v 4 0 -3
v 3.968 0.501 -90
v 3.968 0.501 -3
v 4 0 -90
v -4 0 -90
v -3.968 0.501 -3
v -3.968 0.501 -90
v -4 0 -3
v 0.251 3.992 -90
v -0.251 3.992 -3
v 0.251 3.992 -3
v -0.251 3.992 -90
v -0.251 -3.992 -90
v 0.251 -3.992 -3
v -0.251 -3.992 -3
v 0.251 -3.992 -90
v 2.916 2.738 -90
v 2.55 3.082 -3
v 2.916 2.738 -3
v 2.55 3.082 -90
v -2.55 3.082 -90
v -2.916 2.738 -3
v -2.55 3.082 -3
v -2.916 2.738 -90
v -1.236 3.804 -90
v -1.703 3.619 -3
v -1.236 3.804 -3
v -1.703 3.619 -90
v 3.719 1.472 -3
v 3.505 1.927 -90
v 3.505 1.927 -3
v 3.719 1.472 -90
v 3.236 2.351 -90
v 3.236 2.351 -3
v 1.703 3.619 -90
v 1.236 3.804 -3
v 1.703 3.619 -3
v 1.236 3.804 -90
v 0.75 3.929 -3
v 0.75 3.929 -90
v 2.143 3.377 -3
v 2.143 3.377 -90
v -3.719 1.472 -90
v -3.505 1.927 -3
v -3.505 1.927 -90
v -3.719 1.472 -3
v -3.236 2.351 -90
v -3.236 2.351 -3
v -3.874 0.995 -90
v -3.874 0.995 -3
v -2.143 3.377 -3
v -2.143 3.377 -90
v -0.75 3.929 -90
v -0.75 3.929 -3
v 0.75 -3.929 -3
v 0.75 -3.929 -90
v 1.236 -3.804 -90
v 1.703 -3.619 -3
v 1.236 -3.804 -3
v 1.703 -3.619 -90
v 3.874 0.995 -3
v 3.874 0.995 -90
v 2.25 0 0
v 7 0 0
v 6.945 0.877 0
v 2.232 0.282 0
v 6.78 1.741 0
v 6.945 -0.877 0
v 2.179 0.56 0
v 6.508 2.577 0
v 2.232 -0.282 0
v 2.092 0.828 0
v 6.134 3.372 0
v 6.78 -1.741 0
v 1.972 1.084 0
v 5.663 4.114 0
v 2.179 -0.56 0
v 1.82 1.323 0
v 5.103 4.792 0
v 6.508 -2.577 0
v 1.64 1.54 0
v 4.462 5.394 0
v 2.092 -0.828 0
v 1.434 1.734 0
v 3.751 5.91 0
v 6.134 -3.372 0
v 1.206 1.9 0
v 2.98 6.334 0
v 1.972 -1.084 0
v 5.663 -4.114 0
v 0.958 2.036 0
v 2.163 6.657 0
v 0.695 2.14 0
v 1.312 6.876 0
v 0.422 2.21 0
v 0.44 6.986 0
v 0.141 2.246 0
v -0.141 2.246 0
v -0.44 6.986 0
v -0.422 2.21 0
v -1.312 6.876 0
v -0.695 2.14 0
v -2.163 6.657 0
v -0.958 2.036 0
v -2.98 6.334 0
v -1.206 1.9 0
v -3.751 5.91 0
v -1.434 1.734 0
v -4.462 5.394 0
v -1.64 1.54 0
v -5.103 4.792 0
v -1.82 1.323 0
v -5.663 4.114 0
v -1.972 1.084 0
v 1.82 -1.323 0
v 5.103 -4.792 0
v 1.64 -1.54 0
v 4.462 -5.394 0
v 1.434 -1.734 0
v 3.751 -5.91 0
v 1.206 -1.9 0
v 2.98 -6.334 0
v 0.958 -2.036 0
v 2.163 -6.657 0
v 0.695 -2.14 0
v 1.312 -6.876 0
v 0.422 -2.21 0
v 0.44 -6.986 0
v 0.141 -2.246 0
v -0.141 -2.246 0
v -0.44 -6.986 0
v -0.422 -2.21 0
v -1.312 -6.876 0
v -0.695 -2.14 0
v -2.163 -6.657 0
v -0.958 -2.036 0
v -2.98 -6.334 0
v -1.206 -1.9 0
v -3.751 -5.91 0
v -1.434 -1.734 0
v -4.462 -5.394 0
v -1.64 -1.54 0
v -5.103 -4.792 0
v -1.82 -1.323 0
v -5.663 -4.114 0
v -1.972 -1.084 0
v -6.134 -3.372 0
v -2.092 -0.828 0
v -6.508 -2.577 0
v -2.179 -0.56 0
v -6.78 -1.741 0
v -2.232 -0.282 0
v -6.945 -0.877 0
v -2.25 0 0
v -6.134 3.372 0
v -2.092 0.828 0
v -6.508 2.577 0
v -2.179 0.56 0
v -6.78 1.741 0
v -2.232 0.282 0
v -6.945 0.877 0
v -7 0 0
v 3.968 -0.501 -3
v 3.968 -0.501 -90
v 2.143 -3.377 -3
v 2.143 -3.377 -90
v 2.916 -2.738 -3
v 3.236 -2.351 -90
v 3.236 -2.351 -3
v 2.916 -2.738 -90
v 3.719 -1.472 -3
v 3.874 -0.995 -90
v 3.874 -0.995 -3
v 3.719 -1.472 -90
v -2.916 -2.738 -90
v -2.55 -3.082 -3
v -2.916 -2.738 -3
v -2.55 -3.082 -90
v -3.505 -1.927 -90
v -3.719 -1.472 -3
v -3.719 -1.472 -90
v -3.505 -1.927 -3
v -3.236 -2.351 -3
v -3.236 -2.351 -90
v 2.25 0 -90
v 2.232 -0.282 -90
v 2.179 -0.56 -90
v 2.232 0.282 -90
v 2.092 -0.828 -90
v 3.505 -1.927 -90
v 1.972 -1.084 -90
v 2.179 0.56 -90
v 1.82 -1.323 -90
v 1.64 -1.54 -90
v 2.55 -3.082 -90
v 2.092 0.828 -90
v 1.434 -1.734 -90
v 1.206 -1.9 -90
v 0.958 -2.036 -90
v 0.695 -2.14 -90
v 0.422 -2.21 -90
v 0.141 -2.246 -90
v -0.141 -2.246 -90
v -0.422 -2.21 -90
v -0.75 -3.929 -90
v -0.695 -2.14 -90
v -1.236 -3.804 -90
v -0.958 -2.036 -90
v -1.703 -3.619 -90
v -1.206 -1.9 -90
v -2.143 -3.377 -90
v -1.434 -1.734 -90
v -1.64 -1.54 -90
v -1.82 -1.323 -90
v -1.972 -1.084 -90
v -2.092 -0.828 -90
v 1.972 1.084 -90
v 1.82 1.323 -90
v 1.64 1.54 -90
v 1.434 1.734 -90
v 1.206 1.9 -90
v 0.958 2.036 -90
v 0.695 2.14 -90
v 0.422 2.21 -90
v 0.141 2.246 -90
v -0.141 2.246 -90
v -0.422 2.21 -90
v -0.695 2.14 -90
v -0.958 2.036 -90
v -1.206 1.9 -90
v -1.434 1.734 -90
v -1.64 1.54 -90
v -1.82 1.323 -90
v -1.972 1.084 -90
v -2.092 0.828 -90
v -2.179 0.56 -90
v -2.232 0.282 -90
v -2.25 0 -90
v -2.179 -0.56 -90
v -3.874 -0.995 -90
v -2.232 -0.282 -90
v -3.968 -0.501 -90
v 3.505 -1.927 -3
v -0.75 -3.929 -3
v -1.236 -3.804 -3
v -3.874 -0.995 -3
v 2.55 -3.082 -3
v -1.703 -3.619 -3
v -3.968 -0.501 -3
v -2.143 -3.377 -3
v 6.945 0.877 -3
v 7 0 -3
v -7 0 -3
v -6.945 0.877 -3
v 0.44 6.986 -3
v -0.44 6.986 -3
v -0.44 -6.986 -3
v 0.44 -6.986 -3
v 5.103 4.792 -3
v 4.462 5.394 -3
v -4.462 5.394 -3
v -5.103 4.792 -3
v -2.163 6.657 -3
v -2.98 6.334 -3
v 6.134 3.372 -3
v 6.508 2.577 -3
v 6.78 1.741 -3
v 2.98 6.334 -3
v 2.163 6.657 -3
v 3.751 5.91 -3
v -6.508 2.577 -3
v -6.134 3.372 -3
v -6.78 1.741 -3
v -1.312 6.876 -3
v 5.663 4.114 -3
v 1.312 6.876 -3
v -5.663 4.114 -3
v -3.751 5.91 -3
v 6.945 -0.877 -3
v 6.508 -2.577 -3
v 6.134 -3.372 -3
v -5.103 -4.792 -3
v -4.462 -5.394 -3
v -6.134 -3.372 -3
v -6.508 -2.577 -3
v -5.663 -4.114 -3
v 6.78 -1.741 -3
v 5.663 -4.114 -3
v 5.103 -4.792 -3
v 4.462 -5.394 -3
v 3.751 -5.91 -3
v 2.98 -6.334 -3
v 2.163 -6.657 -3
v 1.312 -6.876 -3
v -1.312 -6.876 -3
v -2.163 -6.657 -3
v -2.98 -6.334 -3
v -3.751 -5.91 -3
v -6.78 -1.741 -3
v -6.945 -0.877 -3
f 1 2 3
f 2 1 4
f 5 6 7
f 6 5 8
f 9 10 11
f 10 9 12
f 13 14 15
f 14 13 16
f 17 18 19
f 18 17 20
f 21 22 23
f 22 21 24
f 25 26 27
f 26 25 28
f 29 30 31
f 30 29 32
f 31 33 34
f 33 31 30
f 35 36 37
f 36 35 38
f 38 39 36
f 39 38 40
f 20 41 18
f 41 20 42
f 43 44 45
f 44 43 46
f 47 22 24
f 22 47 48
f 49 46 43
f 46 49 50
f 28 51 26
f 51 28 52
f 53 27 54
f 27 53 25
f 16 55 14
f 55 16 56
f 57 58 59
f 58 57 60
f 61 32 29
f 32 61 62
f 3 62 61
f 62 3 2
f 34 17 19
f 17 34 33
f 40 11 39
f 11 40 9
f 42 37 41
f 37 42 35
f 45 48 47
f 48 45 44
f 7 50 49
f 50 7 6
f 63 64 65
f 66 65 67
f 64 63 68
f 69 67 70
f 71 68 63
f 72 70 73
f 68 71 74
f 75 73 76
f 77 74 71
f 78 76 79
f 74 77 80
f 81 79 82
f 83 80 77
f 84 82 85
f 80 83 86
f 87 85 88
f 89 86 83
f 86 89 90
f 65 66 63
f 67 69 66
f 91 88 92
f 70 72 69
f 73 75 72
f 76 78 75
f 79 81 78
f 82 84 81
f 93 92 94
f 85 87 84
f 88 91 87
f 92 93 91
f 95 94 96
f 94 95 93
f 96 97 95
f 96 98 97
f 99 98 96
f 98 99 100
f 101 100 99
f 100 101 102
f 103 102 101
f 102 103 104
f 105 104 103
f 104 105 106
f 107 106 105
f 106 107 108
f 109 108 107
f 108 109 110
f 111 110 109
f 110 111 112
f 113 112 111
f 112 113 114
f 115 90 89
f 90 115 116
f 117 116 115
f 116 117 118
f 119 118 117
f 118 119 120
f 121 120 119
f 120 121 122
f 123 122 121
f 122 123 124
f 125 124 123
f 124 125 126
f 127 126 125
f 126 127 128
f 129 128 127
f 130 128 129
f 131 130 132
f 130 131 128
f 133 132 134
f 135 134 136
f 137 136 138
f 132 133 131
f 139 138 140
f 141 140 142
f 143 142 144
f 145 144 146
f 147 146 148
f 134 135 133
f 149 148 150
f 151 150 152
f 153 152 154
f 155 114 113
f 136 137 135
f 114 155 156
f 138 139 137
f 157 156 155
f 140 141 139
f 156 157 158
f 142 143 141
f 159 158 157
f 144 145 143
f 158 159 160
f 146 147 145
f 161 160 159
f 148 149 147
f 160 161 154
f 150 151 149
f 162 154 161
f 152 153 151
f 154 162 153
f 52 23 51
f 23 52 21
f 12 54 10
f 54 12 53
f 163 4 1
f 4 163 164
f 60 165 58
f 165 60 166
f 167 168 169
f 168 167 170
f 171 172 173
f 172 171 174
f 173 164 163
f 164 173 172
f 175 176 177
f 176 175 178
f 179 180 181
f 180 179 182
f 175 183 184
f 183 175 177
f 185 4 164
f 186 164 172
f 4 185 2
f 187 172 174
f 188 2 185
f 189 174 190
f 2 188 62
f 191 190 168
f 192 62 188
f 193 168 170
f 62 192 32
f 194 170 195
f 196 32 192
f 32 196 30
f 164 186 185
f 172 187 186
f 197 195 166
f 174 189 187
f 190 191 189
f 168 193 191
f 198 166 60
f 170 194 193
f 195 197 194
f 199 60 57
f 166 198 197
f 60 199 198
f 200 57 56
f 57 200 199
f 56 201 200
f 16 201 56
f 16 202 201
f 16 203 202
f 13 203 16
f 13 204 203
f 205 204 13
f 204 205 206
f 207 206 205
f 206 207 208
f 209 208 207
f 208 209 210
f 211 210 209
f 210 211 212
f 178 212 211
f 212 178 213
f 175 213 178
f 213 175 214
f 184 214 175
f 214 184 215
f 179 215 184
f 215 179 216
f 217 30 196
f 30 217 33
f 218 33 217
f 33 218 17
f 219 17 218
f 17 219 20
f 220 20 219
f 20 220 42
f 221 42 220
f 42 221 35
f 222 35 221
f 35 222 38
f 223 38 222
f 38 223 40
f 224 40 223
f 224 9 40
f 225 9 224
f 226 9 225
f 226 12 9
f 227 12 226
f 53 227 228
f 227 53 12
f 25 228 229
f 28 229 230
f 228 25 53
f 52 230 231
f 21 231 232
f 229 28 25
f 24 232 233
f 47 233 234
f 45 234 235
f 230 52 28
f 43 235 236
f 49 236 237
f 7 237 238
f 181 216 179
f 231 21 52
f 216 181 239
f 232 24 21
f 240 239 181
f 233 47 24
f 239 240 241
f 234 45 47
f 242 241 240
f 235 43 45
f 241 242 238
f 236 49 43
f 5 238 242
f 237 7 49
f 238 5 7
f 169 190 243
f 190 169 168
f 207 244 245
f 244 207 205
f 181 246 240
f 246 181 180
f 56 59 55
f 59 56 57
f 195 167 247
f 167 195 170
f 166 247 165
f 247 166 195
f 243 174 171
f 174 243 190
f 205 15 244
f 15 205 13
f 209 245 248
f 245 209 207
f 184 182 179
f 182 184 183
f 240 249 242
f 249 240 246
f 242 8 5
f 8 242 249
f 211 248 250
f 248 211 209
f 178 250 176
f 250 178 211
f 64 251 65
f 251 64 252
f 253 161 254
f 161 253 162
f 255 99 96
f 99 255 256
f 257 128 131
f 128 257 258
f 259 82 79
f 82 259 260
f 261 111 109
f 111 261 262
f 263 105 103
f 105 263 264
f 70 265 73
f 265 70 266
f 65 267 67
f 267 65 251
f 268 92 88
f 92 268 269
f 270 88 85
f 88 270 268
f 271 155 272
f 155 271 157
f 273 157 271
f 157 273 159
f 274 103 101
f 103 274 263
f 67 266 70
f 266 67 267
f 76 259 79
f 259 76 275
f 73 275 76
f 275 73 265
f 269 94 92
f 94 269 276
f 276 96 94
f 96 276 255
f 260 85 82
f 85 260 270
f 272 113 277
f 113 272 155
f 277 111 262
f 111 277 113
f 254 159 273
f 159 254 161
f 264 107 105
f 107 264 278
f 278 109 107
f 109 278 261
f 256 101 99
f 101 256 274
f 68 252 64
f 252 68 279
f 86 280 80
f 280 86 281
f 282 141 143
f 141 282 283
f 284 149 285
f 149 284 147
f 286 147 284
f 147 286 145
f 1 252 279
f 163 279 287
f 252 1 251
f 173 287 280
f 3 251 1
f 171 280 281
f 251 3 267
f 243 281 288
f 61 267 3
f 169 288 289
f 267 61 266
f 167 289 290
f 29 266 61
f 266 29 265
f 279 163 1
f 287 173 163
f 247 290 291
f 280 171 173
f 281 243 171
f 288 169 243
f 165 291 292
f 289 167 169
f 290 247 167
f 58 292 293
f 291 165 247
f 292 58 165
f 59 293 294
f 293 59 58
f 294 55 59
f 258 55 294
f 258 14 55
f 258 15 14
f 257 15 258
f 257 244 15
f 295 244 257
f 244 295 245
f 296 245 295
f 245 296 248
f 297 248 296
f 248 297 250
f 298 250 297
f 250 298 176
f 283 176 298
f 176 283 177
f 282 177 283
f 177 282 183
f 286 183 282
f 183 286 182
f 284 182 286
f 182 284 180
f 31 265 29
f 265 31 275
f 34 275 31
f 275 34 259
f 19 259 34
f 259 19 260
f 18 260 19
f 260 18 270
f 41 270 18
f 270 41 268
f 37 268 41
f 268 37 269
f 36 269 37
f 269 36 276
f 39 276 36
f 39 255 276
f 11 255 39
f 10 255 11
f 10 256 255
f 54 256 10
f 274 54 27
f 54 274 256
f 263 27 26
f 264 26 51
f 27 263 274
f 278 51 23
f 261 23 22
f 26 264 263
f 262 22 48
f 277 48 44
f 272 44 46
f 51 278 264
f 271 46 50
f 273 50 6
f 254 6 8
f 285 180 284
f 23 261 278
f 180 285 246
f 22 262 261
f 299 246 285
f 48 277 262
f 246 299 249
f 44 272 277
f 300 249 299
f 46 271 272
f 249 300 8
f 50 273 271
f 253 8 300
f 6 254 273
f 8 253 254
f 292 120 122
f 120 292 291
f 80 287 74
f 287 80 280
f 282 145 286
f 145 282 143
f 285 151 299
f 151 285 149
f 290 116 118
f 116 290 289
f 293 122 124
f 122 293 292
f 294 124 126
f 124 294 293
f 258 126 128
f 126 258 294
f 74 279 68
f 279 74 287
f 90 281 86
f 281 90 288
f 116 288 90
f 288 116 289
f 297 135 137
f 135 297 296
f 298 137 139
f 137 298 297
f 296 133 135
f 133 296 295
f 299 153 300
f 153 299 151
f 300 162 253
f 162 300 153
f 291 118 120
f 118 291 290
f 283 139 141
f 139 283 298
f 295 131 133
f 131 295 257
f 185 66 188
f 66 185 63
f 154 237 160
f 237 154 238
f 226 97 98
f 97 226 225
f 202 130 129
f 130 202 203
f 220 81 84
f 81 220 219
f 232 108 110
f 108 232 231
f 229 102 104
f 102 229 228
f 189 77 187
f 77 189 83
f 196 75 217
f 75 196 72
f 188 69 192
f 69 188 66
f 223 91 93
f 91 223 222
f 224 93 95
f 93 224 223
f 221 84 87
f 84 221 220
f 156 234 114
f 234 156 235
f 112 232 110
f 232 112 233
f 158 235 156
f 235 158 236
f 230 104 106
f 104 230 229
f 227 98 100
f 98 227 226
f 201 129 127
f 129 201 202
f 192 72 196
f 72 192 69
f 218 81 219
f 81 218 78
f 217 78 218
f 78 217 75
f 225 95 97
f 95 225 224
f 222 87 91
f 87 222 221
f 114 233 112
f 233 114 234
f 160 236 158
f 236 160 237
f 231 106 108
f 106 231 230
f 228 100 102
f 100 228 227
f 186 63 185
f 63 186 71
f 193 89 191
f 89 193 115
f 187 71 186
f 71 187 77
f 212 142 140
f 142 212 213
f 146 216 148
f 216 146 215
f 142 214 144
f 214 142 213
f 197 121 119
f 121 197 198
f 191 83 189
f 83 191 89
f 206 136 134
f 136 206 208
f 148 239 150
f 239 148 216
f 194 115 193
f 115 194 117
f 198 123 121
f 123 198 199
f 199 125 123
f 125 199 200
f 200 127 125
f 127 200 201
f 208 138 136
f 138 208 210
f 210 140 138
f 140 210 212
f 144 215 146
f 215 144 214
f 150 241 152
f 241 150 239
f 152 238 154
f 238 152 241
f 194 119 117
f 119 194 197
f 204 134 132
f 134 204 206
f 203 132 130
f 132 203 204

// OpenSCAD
$fn = 50;


difference() {
	union() {
		translate(v = [0, 0, -90.0000000000]) {
			cylinder(h = 90, r = 4.0000000000);
		}
		translate(v = [0, 0, -3.0000000000]) {
			cylinder(h = 3, r = 7.0000000000);
		}
	}
	union() {
		#translate(v = [0, 0, -90]) {
			cylinder(h = 90, r = 2.2500000000);
		}
	}
}
